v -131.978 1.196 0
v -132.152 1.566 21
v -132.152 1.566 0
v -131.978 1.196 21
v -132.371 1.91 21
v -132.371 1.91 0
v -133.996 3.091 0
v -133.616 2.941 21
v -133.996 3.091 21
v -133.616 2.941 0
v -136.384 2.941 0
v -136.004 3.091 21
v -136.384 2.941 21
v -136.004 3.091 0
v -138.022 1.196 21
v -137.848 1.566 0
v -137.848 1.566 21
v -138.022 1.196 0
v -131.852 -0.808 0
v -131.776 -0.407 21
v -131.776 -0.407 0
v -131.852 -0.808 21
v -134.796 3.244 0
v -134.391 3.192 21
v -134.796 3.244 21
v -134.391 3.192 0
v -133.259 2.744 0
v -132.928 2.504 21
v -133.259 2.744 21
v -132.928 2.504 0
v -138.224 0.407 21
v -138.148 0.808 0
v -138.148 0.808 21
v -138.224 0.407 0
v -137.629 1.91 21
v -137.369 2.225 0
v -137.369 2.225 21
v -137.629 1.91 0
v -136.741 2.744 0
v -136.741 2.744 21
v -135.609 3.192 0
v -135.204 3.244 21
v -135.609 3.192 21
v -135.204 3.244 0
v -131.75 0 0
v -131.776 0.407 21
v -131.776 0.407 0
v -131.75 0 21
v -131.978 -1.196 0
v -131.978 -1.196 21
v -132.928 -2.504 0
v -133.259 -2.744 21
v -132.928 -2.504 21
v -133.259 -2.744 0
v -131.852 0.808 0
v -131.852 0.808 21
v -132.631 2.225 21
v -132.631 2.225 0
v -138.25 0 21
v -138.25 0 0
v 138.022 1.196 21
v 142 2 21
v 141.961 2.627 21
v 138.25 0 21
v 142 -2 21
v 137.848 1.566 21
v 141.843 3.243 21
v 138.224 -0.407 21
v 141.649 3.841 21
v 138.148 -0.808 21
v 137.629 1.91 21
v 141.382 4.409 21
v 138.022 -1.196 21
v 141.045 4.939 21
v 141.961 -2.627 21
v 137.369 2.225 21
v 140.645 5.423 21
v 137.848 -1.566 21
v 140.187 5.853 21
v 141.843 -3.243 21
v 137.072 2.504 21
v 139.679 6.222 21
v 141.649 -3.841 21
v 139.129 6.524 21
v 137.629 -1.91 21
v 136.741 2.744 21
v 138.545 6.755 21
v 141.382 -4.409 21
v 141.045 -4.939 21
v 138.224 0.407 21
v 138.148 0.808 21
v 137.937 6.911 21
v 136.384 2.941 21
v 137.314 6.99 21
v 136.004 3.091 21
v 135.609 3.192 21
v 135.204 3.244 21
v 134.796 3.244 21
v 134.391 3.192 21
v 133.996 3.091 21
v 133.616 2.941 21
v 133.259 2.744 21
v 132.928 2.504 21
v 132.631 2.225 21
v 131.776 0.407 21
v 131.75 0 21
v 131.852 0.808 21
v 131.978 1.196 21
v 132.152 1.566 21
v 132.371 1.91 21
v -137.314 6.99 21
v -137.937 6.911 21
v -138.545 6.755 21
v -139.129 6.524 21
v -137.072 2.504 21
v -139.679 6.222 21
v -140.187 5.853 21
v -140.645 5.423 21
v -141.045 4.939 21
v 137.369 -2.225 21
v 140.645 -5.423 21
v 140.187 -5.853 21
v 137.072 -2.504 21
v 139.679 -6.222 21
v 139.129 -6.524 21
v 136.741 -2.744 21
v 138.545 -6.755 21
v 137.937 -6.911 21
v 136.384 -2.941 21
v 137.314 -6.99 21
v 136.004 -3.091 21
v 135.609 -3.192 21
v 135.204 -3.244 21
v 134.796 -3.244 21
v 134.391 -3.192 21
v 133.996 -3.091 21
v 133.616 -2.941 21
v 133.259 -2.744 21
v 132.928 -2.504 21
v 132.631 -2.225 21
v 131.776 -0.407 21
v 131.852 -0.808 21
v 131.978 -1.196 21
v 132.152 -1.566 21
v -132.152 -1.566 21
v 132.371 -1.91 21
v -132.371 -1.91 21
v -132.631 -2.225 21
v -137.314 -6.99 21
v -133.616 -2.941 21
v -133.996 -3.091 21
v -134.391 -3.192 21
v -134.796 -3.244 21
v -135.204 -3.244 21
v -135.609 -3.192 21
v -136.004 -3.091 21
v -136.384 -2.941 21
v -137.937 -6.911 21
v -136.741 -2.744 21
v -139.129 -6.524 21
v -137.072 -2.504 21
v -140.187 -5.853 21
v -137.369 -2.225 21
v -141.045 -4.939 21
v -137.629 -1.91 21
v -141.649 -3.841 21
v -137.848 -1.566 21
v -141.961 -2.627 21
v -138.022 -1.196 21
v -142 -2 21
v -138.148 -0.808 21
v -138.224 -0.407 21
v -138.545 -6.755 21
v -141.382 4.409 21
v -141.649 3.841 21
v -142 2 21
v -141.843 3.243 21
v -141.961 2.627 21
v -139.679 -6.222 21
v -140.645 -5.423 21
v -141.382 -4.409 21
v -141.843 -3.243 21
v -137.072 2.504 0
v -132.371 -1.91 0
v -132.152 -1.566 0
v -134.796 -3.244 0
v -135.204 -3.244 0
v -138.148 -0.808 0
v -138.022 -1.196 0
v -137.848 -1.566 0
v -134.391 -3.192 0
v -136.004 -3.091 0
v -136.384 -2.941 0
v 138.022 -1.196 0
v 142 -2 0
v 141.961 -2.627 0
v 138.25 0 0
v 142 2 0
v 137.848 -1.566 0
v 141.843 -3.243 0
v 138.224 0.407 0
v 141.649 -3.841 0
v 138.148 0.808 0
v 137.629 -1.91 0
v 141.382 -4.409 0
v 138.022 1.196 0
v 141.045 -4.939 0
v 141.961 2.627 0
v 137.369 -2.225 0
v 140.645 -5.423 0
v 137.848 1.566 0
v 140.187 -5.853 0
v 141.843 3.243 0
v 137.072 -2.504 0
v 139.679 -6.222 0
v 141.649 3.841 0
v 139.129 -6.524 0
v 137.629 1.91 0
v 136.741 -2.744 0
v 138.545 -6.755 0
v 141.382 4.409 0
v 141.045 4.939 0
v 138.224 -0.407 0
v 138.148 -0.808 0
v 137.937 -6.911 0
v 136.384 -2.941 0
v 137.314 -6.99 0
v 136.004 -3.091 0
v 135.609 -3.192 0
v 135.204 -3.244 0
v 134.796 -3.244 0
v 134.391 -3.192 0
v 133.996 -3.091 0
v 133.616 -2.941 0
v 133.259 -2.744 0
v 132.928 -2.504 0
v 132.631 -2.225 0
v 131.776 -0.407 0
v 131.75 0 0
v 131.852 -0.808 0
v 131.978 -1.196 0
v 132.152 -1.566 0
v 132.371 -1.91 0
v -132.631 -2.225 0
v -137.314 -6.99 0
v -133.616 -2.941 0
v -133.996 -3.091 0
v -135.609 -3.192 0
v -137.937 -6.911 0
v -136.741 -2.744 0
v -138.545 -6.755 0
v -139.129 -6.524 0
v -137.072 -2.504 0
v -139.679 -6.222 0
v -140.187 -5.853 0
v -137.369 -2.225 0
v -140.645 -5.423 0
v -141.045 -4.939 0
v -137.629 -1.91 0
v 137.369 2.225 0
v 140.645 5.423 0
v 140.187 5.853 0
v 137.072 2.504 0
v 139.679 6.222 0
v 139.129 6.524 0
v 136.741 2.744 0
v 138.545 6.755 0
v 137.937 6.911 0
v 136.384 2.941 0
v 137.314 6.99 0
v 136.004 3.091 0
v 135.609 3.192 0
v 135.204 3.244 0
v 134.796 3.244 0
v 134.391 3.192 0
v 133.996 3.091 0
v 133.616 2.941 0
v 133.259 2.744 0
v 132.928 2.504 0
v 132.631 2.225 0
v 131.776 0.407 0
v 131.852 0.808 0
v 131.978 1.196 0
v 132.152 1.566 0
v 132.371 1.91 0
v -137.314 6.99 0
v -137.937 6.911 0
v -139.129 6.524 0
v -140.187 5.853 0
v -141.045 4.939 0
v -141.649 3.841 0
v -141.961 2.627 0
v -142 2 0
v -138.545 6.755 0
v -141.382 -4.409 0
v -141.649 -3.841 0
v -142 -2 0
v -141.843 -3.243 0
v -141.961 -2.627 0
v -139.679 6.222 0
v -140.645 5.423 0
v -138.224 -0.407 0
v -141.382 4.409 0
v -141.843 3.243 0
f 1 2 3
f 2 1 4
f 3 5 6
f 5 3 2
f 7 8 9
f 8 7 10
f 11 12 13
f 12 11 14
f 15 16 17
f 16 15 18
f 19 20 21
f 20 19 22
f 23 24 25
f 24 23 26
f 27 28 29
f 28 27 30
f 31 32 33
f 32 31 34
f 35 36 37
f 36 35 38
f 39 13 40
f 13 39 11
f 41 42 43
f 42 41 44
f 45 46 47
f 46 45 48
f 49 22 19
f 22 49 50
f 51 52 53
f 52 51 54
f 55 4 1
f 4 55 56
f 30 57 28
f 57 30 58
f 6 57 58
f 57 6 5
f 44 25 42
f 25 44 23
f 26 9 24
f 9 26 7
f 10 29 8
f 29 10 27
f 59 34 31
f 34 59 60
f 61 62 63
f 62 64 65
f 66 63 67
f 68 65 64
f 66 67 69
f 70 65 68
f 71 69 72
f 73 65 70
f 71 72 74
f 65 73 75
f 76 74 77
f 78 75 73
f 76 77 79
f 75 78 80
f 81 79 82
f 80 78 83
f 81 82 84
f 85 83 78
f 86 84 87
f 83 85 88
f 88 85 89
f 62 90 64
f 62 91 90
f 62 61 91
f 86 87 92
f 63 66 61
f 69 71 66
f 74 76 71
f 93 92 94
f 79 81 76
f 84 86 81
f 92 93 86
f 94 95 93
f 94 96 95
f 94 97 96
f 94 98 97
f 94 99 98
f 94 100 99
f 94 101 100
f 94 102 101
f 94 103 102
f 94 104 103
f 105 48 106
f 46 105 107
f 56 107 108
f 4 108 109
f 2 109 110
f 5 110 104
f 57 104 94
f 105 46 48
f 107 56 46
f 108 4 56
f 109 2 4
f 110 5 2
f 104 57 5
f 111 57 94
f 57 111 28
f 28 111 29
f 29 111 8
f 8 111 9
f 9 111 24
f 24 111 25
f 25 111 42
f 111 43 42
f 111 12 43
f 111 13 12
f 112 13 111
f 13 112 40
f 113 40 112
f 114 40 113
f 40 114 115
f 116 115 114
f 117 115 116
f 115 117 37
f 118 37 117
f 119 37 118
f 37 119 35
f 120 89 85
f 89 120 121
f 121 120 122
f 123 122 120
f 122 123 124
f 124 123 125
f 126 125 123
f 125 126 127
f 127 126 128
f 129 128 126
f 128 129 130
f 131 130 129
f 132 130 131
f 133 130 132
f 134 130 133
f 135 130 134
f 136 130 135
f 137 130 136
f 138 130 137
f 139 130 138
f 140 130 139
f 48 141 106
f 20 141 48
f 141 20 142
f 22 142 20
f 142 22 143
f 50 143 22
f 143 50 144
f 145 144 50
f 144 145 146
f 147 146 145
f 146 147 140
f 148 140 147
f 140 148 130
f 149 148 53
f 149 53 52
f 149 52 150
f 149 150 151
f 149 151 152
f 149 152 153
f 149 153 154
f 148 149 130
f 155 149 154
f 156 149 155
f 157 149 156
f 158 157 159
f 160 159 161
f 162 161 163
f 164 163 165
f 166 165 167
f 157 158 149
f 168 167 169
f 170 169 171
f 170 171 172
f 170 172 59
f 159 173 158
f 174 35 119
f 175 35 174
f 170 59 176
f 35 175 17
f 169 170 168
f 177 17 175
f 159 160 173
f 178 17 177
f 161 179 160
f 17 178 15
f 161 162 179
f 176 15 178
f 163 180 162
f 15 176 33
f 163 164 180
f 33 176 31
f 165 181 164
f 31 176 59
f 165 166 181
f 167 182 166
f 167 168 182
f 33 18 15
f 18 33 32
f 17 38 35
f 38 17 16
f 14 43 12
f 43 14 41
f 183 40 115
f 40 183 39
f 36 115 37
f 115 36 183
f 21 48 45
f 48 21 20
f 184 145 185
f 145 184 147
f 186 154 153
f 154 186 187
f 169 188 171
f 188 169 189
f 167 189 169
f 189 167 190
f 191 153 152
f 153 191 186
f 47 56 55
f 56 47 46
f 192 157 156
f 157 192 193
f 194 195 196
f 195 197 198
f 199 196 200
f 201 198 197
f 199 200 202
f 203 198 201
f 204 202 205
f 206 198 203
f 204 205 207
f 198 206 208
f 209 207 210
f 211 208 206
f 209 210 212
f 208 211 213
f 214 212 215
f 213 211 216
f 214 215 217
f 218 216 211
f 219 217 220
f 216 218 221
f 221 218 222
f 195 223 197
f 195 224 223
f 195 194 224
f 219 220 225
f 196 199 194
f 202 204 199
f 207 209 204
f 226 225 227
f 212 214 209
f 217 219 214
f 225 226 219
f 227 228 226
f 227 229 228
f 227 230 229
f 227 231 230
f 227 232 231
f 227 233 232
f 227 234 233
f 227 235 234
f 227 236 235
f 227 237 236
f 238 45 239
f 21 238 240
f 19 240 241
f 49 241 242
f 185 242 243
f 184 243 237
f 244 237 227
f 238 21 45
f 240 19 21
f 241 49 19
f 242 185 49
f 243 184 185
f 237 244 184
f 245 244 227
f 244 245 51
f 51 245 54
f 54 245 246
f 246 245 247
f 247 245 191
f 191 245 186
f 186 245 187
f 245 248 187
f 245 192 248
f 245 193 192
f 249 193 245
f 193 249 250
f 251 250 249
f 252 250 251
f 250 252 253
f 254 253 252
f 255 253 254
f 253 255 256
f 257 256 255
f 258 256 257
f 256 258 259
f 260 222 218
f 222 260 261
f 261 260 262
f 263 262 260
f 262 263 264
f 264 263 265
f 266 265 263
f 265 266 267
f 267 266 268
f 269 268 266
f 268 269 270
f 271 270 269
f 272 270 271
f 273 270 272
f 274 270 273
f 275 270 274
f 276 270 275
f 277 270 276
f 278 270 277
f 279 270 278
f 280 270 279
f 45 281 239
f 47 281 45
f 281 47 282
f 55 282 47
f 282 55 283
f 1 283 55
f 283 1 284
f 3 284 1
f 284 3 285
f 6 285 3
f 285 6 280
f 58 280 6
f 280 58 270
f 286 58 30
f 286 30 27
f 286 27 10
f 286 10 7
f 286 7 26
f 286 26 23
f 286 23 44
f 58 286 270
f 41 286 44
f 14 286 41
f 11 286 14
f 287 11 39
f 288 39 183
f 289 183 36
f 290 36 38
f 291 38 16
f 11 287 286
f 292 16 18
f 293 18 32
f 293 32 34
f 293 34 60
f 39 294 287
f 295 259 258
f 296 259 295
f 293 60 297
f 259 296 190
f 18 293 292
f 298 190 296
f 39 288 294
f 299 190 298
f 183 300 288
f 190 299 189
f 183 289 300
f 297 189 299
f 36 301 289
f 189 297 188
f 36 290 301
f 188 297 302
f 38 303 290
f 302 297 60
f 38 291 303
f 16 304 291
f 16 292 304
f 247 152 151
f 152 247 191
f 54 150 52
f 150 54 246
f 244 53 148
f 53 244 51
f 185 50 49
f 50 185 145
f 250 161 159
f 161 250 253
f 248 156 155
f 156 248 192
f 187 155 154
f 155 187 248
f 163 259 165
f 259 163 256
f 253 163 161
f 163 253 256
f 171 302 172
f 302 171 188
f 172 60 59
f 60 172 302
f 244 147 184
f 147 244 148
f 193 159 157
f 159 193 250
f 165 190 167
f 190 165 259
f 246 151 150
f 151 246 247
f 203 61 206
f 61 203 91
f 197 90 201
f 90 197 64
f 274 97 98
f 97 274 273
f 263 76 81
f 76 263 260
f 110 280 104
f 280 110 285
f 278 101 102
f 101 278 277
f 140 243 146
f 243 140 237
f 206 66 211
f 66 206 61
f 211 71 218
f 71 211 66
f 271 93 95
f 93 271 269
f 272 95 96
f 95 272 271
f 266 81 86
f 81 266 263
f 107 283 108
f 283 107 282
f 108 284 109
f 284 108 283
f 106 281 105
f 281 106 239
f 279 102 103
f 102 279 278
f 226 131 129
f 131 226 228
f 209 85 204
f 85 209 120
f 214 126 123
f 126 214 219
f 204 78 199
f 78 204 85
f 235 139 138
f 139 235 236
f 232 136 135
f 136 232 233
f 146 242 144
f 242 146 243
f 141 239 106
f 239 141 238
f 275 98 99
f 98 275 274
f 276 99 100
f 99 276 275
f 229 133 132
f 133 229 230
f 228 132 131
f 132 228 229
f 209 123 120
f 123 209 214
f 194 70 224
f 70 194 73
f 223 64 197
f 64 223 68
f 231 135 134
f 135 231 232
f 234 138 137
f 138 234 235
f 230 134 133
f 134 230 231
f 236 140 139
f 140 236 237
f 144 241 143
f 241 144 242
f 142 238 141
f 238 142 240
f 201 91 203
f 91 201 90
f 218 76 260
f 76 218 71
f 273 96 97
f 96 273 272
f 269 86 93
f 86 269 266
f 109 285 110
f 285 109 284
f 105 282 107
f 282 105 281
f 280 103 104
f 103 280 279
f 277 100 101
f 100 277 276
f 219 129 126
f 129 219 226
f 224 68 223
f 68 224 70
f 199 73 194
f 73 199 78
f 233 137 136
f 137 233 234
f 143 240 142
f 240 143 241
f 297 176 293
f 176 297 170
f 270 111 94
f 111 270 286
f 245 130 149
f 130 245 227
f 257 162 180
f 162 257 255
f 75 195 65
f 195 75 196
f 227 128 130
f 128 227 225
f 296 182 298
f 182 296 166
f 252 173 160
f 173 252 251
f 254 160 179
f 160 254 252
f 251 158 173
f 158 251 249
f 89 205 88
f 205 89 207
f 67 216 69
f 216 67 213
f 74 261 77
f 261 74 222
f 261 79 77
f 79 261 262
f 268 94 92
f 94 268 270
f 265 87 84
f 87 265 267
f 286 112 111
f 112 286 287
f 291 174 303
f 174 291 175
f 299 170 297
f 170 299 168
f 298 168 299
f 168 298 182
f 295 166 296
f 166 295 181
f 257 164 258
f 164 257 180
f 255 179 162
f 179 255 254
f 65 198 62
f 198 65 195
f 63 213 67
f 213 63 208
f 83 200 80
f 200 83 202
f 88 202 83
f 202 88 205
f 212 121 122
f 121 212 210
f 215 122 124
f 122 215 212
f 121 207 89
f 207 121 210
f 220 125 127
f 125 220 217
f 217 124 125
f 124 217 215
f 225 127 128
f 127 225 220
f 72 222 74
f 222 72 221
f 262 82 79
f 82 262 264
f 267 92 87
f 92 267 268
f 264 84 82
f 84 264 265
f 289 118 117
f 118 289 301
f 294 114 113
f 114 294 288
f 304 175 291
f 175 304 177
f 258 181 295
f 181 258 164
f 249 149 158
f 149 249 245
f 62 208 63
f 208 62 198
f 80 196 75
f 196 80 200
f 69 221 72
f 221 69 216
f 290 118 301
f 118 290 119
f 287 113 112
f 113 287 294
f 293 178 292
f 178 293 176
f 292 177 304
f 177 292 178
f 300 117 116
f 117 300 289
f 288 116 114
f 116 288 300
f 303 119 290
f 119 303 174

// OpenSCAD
$fn = 50;


difference() {
	union() {
		hull() {
			translate(v = [-137.0000000000, 2.0000000000, 0]) {
				cylinder(h = 21, r = 5);
			}
			translate(v = [137.0000000000, 2.0000000000, 0]) {
				cylinder(h = 21, r = 5);
			}
			translate(v = [-137.0000000000, -2.0000000000, 0]) {
				cylinder(h = 21, r = 5);
			}
			translate(v = [137.0000000000, -2.0000000000, 0]) {
				cylinder(h = 21, r = 5);
			}
		}
	}
	union() {
		translate(v = [-135.0000000000, 0.0000000000, 0]) {
			cylinder(h = 21, r = 3.2500000000);
		}
		translate(v = [135.0000000000, 0.0000000000, 0]) {
			cylinder(h = 21, r = 3.2500000000);
		}
		translate(v = [-135.0000000000, 0.0000000000, 0]) {
			cylinder(h = 21, r = 1.8000000000);
		}
		translate(v = [135.0000000000, 0.0000000000, 0]) {
			cylinder(h = 21, r = 1.8000000000);
		}
		translate(v = [-135.0000000000, 0.0000000000, 0]) {
			cylinder(h = 21, r = 1.8000000000);
		}
		translate(v = [135.0000000000, 0.0000000000, 0]) {
			cylinder(h = 21, r = 1.8000000000);
		}
		translate(v = [-135.0000000000, 0.0000000000, 0]) {
			cylinder(h = 21, r = 1.8000000000);
		}
		translate(v = [135.0000000000, 0.0000000000, 0]) {
			cylinder(h = 21, r = 1.8000000000);
		}
	}
}
